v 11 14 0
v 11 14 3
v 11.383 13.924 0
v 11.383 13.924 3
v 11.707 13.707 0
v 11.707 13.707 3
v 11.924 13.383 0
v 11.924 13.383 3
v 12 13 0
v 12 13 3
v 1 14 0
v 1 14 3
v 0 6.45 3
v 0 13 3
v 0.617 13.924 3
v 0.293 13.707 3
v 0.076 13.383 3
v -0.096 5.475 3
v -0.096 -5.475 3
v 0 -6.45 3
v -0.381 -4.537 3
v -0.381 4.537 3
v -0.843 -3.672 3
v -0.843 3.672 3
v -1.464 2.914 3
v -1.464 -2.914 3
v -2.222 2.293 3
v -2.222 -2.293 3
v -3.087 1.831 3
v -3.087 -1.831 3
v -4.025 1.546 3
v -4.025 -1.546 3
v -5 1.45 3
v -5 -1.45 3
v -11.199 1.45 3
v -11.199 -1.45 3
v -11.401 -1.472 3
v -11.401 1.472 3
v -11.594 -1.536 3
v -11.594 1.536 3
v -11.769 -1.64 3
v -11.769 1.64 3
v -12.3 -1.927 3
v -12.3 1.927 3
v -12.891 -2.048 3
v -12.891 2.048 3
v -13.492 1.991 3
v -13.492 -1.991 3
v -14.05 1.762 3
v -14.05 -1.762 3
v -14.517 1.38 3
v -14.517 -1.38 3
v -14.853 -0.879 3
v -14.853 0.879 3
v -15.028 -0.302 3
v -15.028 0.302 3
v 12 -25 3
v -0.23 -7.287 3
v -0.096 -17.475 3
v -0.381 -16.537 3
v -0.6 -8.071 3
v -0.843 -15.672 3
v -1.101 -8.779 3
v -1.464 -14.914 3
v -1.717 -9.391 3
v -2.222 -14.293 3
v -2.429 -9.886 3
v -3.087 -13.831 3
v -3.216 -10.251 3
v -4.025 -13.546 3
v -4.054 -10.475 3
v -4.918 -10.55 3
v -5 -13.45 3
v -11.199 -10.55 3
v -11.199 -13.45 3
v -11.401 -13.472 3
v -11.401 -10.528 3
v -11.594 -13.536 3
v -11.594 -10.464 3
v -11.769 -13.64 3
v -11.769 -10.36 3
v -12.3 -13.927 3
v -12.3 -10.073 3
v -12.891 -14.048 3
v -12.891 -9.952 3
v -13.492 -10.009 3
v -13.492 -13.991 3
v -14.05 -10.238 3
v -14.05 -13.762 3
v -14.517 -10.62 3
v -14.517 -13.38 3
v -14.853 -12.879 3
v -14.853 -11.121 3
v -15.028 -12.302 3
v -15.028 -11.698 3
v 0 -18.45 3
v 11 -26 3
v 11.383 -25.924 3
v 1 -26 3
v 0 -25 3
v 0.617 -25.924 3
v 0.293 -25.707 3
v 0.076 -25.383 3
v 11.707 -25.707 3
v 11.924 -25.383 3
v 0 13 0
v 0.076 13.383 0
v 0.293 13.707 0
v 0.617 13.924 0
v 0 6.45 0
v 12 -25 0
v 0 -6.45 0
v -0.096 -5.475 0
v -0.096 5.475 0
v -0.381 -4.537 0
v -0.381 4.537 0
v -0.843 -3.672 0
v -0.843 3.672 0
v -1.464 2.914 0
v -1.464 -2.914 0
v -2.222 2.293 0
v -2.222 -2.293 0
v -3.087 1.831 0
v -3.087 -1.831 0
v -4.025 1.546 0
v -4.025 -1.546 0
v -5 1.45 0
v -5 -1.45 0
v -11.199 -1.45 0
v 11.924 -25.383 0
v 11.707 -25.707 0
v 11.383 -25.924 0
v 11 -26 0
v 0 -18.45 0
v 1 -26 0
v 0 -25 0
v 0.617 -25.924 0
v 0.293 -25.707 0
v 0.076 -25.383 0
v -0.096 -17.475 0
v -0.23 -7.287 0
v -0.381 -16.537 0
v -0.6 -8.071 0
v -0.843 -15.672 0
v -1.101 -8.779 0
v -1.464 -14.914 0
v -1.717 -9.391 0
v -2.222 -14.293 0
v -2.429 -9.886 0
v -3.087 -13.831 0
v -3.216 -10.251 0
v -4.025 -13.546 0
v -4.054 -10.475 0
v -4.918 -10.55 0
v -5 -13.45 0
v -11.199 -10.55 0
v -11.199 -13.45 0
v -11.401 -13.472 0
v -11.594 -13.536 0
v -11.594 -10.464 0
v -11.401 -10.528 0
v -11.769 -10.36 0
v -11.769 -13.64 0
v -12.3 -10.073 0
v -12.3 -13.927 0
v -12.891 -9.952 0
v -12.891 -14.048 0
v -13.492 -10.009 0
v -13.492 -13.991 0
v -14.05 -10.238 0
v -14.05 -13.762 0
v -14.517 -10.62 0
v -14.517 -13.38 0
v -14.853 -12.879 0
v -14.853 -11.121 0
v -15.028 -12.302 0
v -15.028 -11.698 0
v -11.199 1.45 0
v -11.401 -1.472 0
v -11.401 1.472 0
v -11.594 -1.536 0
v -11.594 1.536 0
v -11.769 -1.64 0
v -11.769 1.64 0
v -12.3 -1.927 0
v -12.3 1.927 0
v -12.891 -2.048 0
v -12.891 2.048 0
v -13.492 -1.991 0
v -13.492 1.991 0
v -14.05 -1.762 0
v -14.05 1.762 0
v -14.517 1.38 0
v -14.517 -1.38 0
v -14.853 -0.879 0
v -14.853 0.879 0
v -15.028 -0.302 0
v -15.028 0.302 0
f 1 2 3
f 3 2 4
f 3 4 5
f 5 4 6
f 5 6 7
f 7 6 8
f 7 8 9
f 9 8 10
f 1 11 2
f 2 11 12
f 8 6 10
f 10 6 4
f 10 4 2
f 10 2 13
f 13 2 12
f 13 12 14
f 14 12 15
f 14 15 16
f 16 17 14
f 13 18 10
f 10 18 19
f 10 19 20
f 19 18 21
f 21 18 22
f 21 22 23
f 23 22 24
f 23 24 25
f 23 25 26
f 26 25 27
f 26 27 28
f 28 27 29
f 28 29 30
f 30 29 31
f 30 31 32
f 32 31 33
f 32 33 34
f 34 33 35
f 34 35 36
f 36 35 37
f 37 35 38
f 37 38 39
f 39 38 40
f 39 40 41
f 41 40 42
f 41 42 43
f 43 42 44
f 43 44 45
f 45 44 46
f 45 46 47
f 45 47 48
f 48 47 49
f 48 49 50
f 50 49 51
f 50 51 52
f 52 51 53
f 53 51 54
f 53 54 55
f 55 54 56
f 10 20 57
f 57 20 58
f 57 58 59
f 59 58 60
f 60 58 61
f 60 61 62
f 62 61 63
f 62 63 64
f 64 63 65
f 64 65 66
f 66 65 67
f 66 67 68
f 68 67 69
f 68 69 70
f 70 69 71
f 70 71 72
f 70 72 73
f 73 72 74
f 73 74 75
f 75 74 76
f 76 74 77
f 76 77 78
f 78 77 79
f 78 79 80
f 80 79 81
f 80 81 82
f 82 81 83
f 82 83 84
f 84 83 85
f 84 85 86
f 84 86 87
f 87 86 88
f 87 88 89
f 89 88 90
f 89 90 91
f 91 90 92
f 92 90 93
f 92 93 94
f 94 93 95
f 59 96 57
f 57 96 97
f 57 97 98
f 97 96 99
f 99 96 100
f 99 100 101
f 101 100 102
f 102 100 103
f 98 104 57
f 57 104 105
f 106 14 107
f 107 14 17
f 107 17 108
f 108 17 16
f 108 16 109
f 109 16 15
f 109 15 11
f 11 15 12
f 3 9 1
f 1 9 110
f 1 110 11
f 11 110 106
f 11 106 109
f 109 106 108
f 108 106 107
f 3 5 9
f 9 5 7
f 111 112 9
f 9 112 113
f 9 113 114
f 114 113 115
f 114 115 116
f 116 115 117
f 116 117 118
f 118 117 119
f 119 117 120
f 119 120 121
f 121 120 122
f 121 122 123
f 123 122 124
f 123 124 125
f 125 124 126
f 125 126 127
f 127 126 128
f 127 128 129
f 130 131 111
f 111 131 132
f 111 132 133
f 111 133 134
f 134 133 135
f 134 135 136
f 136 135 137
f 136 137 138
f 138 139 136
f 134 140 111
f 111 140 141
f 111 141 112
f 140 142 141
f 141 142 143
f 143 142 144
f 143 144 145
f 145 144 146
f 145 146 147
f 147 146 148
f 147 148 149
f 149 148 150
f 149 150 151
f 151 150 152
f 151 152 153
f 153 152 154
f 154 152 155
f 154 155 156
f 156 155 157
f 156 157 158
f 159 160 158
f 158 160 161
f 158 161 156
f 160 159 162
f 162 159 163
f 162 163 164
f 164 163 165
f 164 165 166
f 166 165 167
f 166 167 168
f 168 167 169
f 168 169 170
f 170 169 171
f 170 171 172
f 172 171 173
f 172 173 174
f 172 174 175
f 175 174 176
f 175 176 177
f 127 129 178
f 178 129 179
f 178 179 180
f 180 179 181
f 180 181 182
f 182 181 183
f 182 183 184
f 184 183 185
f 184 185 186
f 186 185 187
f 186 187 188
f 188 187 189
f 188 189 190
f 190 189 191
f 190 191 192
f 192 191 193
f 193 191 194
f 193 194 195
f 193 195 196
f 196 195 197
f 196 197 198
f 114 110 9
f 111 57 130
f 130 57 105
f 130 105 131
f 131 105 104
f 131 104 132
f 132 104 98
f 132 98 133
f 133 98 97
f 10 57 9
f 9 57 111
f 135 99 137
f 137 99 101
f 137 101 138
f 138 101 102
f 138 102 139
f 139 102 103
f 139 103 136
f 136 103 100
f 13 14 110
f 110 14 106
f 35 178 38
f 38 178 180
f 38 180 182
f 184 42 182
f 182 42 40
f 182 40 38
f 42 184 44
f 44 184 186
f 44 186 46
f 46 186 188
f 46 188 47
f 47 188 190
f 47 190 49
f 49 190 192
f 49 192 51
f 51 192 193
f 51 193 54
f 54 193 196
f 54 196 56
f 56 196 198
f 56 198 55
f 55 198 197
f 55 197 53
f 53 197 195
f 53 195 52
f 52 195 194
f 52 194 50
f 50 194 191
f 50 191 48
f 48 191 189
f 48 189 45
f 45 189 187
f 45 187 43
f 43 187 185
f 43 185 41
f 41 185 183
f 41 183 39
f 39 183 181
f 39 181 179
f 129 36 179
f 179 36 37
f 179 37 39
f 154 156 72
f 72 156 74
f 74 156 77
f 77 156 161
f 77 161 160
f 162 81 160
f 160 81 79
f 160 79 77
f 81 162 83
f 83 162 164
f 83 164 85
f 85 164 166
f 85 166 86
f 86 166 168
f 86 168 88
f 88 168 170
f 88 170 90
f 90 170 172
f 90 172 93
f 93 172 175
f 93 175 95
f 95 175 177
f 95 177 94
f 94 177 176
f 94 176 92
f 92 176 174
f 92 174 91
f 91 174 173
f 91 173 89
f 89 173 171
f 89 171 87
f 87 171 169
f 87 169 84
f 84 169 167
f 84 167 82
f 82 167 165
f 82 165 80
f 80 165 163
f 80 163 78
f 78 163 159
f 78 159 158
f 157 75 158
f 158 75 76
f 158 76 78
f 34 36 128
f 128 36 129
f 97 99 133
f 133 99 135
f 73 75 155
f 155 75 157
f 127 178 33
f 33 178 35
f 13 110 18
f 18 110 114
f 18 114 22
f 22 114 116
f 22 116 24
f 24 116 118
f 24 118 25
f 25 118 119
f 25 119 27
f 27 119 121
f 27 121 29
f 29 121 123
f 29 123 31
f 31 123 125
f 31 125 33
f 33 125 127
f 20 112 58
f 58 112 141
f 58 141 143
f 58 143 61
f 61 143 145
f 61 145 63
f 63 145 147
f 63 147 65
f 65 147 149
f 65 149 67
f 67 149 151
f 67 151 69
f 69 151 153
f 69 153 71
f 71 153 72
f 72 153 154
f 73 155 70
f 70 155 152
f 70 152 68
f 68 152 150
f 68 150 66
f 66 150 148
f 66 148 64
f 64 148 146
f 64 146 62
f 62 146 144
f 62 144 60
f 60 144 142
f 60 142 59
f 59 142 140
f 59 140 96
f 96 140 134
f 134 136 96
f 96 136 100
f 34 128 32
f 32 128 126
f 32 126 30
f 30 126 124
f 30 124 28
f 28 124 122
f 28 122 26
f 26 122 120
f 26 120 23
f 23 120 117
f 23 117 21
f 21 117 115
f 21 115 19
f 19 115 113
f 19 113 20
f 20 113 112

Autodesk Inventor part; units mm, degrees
ref_plane "Plan YZ" through (0, 0, 0) normal (1, 0, 0) x (0, 1, 0)
ref_plane "Plan XZ" through (0, 0, 0) normal (0, 1, 0) x (-1, 0, 0)
ref_plane "Plan XY" through (0, 0, 0) normal (0, 0, 1) x (1, 0, 0)
sketch "Esquisse1" plane through (0, 0, 0) normal (0, 0, 1) x (1, 0, 0)
  arc A0 (-11.55, 1.45) -> (-11.55, -1.45) centre (-13, 0) ccw
  line L0 (-13, 0) -> (-11.55, -1.45) construction
  line L1 (-13, 0) -> (-10.9494, 0) construction
  line L2 (-13, 0) -> (-11.55, 1.45) construction
  line L3 (-11.55, 1.45) -> (0, 1.45)
  line L4 (-11.55, -1.45) -> (0, -1.45)
  line L5 (0, -34) -> (0, 22) construction
  line L6 (-20.4607, 0) -> (17.4101, 0) construction
  line L7 (-5, -6) -> (5, -6) construction
  arc A1 (-11.55, -10.55) -> (-11.55, -13.45) centre (-13, -12) ccw
  line L8 (-11.55, -13.45) -> (0, -13.45)
  line L9 (-11.55, -10.55) -> (0, -10.55)
  line L10 (0, -26) -> (12, -26)
  line L11 (12, -26) -> (12, 14)
  line L12 (12, 14) -> (0, 14)
  line L13 (0, 14) -> (0, -26)
  line L14 (0, -26) -> (12, 14) construction
  line L15 (12, -26) -> (0, 14) construction
  point P0 (0, 0)
  point P1 (0, -6)
  point P2 (6, -6)
  point P3 (0, -13.45)
  dimension "d0" = 45
  dimension "d1" = 90
  dimension "d3" = 13
  dimension "d7" = 2.9
  dimension "d8" = 10
  dimension "d9" = 6
  dimension "d10" = 12
  dimension "d11" = 40
extrude "Extrusion2" add sketch "Esquisse1" along normal blind 3
fillet "Congé2" radius 0.95 4 edges at (-11.55, -13.45, 1.5) (-11.55, -10.55, 1.5) (-11.55, -1.45, 1.5) (-11.55, 1.45, 1.5)
fillet "Congé3" radius 1 4 edges at (0, -26, 1.5) (12, -26, 1.5) (0, 14, 1.5) (12, 14, 1.5)
fillet "Congé4" radius 5 4 edges at (0, -13.45, 1.5) (0, -1.45, 1.5) (0, -10.55, 1.5) (0, 1.45, 1.5)
properties part number "T2601_Conn" material "."
